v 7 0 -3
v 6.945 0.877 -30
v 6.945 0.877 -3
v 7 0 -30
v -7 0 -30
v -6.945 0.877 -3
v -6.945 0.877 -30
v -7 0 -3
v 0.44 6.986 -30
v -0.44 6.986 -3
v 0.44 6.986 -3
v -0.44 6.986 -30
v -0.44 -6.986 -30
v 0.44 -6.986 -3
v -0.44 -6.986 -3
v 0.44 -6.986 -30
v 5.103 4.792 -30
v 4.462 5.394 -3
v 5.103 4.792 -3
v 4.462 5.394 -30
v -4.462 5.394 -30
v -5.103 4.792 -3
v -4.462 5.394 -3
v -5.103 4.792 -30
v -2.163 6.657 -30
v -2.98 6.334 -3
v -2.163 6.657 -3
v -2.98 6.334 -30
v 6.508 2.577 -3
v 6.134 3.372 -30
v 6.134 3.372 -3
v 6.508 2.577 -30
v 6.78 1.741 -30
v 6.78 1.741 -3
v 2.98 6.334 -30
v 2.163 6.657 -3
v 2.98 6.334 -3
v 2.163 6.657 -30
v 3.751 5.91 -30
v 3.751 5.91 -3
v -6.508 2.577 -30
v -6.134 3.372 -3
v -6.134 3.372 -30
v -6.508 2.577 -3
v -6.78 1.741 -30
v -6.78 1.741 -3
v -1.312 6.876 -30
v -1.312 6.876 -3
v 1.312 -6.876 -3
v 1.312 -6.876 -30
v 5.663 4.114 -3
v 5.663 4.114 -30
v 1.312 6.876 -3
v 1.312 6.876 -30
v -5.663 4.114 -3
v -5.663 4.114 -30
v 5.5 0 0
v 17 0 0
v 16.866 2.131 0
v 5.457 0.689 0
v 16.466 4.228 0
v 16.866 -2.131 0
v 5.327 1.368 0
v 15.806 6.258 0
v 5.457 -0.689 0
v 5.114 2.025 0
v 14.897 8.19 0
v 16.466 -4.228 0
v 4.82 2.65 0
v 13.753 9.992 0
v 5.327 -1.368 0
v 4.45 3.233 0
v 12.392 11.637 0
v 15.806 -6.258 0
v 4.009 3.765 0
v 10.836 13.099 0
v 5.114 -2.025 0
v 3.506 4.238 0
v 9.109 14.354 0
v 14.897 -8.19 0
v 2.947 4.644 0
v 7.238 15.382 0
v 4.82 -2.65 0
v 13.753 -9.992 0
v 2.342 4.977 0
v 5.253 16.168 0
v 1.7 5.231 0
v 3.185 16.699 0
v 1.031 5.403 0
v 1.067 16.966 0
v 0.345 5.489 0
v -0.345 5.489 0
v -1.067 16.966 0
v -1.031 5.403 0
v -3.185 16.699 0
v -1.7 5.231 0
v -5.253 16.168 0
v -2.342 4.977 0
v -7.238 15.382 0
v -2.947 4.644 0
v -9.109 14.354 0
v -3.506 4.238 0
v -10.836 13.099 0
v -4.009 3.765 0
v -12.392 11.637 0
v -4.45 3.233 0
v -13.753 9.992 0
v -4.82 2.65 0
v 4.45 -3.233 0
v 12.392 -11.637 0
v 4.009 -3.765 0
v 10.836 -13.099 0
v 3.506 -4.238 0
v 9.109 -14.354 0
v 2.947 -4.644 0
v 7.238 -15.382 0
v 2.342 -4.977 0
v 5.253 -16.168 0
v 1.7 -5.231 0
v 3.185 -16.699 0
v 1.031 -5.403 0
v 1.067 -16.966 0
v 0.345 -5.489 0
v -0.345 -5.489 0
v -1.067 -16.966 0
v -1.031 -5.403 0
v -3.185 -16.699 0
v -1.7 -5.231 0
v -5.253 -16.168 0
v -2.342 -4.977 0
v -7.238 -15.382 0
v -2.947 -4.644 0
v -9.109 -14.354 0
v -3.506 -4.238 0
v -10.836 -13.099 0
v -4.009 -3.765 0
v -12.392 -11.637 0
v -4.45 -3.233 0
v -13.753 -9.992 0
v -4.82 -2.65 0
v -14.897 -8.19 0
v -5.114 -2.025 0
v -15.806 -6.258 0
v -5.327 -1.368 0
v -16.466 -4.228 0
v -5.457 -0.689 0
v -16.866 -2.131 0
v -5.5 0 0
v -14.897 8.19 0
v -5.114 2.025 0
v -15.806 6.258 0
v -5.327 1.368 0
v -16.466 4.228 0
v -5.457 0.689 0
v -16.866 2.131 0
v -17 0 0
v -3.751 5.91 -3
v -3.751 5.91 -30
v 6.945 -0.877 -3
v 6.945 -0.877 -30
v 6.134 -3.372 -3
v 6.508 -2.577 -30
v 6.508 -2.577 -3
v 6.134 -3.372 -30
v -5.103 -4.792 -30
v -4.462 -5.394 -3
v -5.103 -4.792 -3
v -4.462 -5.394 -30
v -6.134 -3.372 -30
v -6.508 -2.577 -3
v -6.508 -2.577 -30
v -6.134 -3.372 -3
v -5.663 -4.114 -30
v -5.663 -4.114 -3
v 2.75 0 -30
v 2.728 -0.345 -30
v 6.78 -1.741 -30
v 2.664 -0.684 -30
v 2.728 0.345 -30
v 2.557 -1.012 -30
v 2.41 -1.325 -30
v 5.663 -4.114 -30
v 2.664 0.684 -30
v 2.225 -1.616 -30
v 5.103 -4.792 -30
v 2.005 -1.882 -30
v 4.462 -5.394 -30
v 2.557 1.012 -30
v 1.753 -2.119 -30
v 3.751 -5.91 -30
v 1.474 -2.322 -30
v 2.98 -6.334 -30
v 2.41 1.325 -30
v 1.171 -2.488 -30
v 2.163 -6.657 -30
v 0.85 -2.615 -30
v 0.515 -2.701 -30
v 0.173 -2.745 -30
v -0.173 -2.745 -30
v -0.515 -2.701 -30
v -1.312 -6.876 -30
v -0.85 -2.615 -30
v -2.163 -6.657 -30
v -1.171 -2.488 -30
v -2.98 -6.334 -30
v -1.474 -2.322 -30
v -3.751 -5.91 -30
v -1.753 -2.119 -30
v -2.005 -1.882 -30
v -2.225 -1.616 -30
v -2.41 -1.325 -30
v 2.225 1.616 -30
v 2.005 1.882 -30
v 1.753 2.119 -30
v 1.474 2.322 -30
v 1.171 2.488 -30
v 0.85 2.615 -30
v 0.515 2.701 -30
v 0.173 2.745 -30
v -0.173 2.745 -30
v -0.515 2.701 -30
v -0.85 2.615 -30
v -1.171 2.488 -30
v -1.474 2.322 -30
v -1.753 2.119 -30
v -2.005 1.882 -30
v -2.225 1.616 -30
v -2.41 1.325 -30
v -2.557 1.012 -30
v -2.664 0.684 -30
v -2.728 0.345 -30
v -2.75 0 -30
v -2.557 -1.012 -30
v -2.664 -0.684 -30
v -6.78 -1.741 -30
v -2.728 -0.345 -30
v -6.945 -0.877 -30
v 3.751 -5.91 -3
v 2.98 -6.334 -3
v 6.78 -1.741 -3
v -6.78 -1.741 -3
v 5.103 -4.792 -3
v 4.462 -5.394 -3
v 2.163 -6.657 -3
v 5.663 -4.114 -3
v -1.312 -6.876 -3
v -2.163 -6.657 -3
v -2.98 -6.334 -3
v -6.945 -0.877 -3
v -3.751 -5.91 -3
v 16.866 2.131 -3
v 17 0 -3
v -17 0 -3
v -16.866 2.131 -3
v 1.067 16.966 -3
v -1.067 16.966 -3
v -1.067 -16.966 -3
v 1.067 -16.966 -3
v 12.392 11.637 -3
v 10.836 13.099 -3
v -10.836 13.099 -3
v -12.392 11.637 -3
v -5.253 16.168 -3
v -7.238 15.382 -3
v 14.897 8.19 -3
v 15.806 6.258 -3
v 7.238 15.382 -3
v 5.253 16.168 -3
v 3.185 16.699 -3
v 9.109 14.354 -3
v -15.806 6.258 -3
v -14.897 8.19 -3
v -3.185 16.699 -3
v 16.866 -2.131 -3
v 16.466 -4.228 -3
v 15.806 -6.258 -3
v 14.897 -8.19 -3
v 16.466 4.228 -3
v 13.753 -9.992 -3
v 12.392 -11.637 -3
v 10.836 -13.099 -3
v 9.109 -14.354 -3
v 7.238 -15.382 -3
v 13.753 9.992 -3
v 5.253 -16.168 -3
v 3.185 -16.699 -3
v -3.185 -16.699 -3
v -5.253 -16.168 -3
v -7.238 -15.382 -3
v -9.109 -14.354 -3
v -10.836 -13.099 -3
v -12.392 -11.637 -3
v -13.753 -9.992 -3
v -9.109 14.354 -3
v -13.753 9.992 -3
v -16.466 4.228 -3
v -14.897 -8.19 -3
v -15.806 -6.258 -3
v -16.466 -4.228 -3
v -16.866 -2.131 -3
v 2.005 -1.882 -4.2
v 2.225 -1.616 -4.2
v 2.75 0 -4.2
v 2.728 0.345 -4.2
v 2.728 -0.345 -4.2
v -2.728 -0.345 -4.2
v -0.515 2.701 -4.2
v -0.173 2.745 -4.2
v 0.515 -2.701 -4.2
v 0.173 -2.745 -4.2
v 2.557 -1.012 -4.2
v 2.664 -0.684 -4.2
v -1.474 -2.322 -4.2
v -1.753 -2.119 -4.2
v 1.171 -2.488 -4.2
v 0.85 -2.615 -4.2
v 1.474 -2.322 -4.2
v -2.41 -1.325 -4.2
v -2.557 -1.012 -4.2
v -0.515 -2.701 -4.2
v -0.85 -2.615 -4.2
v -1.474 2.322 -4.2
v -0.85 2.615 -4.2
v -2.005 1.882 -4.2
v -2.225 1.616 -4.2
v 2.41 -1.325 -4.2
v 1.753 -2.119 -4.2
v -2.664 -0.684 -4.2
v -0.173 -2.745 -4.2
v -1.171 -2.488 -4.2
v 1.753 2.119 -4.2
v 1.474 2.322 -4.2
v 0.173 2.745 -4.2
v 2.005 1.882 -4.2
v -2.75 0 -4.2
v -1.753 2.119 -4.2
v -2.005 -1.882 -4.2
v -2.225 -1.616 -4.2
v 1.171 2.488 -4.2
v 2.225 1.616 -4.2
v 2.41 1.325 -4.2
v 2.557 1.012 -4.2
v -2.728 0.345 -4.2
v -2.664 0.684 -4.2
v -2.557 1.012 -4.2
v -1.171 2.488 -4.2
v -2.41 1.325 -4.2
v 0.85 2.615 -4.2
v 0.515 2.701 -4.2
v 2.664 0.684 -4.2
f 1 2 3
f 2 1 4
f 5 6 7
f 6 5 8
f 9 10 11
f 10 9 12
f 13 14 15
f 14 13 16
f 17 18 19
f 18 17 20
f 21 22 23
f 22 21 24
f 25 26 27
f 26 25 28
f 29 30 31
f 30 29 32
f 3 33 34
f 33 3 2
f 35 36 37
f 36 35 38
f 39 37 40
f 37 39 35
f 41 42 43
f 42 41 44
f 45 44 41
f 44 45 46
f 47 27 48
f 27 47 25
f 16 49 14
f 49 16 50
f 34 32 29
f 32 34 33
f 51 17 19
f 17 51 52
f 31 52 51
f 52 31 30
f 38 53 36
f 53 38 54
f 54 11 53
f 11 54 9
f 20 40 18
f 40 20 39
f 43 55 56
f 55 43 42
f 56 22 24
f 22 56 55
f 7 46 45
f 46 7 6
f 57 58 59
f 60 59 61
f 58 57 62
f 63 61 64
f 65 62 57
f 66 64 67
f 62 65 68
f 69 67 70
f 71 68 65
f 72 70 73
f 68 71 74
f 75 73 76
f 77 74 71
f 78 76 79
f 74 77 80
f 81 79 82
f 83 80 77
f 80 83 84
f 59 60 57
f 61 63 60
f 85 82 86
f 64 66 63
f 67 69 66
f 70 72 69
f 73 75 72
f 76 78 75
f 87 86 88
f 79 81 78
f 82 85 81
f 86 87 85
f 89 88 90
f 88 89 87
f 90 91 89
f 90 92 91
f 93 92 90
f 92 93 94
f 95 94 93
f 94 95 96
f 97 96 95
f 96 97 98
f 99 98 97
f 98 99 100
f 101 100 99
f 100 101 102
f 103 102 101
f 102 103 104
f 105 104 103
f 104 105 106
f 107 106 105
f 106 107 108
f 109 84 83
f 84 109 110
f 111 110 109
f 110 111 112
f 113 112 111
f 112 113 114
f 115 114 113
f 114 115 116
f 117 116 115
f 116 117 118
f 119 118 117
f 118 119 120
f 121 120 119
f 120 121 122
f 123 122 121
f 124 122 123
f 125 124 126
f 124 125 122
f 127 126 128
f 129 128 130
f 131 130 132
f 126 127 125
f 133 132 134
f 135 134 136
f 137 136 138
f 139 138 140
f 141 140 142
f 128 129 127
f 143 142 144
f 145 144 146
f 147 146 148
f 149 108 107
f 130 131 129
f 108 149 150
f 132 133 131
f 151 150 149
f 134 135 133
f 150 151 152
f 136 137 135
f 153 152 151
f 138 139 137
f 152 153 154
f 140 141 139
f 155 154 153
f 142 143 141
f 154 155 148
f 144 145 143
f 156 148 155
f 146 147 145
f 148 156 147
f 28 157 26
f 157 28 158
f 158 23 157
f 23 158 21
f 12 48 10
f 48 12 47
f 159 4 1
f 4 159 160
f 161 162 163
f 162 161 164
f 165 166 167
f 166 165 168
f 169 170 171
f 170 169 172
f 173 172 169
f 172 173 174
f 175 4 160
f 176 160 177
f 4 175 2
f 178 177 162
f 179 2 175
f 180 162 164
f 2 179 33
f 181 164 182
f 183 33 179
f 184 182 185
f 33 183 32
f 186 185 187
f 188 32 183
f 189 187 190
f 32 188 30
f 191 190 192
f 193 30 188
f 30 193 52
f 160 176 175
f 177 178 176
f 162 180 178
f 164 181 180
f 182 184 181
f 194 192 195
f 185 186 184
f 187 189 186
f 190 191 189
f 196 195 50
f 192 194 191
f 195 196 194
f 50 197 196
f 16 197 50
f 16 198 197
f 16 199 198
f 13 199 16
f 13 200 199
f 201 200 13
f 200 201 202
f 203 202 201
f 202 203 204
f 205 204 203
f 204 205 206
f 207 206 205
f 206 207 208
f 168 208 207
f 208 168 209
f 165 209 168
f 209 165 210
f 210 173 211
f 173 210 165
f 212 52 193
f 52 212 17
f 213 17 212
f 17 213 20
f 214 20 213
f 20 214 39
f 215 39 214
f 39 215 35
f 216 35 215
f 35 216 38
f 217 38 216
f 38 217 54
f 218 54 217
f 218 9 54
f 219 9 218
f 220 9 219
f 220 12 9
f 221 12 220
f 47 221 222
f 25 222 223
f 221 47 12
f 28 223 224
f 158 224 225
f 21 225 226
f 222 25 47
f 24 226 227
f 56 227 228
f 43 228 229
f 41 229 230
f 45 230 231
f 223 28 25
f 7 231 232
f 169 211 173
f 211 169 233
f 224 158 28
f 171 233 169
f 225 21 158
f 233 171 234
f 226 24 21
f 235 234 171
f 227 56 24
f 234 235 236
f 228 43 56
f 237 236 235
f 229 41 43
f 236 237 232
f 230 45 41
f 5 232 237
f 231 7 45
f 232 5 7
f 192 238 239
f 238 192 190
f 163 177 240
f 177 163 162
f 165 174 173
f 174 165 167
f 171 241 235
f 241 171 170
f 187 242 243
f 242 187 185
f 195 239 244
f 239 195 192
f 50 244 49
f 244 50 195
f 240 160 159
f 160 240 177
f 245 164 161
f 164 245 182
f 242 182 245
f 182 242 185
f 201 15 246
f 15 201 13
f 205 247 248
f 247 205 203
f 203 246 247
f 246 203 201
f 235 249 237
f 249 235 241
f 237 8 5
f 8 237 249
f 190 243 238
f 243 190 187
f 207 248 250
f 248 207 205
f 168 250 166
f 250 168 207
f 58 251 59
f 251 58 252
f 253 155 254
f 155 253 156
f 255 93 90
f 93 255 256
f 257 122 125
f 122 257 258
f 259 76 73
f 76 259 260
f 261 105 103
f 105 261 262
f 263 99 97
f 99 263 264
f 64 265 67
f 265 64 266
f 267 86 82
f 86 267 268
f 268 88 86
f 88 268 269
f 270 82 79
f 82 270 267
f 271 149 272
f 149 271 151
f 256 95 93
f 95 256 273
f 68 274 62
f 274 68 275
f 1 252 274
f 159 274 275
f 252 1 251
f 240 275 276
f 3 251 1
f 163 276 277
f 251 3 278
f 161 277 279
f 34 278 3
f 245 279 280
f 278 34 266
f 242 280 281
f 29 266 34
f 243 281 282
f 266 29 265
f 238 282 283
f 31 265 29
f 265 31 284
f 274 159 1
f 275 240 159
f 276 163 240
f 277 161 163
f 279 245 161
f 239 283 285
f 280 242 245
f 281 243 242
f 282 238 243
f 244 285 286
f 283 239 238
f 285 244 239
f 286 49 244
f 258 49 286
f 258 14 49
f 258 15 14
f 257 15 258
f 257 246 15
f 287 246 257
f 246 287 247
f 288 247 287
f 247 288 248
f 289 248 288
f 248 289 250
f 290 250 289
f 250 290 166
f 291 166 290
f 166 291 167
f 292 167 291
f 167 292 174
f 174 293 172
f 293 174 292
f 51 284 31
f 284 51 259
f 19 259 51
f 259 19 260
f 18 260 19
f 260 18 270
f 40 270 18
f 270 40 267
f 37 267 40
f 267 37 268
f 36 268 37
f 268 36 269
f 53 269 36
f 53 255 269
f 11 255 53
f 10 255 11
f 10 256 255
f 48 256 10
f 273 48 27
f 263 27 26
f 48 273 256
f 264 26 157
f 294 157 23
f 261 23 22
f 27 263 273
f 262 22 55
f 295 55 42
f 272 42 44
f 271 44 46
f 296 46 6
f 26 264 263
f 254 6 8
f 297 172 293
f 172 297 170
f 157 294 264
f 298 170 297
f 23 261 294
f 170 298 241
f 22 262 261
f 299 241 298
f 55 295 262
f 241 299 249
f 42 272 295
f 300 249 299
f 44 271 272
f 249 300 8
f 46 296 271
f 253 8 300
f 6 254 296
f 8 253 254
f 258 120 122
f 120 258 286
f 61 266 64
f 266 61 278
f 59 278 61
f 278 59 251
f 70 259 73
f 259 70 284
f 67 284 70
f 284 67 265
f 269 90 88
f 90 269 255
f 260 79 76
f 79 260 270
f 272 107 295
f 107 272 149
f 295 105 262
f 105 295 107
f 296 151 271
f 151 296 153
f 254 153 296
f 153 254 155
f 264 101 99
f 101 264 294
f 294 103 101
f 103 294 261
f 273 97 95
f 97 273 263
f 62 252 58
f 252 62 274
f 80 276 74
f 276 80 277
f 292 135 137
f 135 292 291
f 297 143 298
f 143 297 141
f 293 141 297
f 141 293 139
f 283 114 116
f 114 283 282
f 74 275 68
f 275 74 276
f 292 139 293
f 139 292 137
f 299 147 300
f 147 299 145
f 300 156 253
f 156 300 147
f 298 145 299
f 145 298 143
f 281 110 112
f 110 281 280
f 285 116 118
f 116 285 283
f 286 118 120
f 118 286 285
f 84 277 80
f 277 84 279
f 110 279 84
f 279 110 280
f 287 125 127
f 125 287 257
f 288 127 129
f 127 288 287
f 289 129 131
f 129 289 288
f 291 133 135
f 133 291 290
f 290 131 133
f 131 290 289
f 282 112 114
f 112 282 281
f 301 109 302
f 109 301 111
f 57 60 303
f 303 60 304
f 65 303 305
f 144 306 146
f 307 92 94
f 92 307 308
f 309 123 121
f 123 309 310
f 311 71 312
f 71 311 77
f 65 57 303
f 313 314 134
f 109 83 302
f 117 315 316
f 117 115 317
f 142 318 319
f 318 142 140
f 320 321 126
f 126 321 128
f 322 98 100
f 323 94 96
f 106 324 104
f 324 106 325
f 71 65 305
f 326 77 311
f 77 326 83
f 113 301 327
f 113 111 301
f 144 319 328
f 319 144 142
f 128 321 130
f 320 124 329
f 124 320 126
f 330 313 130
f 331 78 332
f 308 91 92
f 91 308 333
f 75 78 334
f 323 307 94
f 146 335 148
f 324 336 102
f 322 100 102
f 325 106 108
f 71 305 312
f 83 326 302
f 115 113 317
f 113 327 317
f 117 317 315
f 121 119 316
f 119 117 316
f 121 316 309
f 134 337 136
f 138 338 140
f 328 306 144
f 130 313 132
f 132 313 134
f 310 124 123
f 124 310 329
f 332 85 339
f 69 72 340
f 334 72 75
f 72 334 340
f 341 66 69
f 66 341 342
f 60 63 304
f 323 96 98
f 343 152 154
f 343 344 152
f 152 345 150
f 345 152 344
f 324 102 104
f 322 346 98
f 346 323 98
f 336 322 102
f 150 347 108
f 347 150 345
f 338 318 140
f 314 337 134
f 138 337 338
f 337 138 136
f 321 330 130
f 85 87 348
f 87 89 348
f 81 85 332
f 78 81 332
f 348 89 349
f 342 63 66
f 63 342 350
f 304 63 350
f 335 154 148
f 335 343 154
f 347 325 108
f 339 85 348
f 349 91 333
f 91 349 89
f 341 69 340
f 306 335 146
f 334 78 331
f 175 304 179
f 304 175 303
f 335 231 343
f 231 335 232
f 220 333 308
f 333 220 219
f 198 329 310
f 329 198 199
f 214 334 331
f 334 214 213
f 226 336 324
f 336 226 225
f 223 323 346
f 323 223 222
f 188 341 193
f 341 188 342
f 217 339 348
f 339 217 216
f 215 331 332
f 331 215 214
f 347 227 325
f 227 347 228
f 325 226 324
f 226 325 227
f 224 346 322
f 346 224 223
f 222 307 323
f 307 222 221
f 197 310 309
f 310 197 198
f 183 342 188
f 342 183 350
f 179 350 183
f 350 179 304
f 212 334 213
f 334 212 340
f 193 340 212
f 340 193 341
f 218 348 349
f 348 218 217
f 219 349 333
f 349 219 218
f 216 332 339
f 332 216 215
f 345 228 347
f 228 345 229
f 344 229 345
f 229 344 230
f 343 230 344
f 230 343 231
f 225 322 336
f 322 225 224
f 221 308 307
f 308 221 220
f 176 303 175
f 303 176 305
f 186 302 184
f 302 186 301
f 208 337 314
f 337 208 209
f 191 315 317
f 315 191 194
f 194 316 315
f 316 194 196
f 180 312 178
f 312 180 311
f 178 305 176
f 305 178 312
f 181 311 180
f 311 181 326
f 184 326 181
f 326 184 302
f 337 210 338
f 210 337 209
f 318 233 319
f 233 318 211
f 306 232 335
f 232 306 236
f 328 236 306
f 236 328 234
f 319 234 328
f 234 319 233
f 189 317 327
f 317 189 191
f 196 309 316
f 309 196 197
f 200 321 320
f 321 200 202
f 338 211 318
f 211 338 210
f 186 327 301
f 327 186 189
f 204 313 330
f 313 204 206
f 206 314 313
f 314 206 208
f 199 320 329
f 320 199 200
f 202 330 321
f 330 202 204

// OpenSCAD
$fn = 50;


difference() {
	union() {
		translate(v = [0, 0, -30.0000000000]) {
			cylinder(h = 30, r = 7.0000000000);
		}
		translate(v = [0, 0, -3.0000000000]) {
			cylinder(h = 3, r = 17.0000000000);
		}
	}
	union() {
		translate(v = [0, 0, 0]) {
			rotate(a = [0, 0, 0]) {
				difference() {
					union() {
						#translate(v = [0, 0, -30.0000000000]) {
							cylinder(h = 30, r = 2.2500000000);
						}
						#translate(v = [0, 0, -4.2000000000]) {
							cylinder(h = 4.2000000000, r = 7.0000000000, r1 = 2.7500000000, r2 = 5.5000000000);
						}
						#translate(v = [0, 0, -30.0000000000]) {
							cylinder(h = 30, r = 2.7500000000);
						}
						#translate(v = [0, 0, -30.0000000000]) {
							cylinder(h = 30, r = 2.2500000000);
						}
					}
					union();
				}
			}
		}
	}
}
